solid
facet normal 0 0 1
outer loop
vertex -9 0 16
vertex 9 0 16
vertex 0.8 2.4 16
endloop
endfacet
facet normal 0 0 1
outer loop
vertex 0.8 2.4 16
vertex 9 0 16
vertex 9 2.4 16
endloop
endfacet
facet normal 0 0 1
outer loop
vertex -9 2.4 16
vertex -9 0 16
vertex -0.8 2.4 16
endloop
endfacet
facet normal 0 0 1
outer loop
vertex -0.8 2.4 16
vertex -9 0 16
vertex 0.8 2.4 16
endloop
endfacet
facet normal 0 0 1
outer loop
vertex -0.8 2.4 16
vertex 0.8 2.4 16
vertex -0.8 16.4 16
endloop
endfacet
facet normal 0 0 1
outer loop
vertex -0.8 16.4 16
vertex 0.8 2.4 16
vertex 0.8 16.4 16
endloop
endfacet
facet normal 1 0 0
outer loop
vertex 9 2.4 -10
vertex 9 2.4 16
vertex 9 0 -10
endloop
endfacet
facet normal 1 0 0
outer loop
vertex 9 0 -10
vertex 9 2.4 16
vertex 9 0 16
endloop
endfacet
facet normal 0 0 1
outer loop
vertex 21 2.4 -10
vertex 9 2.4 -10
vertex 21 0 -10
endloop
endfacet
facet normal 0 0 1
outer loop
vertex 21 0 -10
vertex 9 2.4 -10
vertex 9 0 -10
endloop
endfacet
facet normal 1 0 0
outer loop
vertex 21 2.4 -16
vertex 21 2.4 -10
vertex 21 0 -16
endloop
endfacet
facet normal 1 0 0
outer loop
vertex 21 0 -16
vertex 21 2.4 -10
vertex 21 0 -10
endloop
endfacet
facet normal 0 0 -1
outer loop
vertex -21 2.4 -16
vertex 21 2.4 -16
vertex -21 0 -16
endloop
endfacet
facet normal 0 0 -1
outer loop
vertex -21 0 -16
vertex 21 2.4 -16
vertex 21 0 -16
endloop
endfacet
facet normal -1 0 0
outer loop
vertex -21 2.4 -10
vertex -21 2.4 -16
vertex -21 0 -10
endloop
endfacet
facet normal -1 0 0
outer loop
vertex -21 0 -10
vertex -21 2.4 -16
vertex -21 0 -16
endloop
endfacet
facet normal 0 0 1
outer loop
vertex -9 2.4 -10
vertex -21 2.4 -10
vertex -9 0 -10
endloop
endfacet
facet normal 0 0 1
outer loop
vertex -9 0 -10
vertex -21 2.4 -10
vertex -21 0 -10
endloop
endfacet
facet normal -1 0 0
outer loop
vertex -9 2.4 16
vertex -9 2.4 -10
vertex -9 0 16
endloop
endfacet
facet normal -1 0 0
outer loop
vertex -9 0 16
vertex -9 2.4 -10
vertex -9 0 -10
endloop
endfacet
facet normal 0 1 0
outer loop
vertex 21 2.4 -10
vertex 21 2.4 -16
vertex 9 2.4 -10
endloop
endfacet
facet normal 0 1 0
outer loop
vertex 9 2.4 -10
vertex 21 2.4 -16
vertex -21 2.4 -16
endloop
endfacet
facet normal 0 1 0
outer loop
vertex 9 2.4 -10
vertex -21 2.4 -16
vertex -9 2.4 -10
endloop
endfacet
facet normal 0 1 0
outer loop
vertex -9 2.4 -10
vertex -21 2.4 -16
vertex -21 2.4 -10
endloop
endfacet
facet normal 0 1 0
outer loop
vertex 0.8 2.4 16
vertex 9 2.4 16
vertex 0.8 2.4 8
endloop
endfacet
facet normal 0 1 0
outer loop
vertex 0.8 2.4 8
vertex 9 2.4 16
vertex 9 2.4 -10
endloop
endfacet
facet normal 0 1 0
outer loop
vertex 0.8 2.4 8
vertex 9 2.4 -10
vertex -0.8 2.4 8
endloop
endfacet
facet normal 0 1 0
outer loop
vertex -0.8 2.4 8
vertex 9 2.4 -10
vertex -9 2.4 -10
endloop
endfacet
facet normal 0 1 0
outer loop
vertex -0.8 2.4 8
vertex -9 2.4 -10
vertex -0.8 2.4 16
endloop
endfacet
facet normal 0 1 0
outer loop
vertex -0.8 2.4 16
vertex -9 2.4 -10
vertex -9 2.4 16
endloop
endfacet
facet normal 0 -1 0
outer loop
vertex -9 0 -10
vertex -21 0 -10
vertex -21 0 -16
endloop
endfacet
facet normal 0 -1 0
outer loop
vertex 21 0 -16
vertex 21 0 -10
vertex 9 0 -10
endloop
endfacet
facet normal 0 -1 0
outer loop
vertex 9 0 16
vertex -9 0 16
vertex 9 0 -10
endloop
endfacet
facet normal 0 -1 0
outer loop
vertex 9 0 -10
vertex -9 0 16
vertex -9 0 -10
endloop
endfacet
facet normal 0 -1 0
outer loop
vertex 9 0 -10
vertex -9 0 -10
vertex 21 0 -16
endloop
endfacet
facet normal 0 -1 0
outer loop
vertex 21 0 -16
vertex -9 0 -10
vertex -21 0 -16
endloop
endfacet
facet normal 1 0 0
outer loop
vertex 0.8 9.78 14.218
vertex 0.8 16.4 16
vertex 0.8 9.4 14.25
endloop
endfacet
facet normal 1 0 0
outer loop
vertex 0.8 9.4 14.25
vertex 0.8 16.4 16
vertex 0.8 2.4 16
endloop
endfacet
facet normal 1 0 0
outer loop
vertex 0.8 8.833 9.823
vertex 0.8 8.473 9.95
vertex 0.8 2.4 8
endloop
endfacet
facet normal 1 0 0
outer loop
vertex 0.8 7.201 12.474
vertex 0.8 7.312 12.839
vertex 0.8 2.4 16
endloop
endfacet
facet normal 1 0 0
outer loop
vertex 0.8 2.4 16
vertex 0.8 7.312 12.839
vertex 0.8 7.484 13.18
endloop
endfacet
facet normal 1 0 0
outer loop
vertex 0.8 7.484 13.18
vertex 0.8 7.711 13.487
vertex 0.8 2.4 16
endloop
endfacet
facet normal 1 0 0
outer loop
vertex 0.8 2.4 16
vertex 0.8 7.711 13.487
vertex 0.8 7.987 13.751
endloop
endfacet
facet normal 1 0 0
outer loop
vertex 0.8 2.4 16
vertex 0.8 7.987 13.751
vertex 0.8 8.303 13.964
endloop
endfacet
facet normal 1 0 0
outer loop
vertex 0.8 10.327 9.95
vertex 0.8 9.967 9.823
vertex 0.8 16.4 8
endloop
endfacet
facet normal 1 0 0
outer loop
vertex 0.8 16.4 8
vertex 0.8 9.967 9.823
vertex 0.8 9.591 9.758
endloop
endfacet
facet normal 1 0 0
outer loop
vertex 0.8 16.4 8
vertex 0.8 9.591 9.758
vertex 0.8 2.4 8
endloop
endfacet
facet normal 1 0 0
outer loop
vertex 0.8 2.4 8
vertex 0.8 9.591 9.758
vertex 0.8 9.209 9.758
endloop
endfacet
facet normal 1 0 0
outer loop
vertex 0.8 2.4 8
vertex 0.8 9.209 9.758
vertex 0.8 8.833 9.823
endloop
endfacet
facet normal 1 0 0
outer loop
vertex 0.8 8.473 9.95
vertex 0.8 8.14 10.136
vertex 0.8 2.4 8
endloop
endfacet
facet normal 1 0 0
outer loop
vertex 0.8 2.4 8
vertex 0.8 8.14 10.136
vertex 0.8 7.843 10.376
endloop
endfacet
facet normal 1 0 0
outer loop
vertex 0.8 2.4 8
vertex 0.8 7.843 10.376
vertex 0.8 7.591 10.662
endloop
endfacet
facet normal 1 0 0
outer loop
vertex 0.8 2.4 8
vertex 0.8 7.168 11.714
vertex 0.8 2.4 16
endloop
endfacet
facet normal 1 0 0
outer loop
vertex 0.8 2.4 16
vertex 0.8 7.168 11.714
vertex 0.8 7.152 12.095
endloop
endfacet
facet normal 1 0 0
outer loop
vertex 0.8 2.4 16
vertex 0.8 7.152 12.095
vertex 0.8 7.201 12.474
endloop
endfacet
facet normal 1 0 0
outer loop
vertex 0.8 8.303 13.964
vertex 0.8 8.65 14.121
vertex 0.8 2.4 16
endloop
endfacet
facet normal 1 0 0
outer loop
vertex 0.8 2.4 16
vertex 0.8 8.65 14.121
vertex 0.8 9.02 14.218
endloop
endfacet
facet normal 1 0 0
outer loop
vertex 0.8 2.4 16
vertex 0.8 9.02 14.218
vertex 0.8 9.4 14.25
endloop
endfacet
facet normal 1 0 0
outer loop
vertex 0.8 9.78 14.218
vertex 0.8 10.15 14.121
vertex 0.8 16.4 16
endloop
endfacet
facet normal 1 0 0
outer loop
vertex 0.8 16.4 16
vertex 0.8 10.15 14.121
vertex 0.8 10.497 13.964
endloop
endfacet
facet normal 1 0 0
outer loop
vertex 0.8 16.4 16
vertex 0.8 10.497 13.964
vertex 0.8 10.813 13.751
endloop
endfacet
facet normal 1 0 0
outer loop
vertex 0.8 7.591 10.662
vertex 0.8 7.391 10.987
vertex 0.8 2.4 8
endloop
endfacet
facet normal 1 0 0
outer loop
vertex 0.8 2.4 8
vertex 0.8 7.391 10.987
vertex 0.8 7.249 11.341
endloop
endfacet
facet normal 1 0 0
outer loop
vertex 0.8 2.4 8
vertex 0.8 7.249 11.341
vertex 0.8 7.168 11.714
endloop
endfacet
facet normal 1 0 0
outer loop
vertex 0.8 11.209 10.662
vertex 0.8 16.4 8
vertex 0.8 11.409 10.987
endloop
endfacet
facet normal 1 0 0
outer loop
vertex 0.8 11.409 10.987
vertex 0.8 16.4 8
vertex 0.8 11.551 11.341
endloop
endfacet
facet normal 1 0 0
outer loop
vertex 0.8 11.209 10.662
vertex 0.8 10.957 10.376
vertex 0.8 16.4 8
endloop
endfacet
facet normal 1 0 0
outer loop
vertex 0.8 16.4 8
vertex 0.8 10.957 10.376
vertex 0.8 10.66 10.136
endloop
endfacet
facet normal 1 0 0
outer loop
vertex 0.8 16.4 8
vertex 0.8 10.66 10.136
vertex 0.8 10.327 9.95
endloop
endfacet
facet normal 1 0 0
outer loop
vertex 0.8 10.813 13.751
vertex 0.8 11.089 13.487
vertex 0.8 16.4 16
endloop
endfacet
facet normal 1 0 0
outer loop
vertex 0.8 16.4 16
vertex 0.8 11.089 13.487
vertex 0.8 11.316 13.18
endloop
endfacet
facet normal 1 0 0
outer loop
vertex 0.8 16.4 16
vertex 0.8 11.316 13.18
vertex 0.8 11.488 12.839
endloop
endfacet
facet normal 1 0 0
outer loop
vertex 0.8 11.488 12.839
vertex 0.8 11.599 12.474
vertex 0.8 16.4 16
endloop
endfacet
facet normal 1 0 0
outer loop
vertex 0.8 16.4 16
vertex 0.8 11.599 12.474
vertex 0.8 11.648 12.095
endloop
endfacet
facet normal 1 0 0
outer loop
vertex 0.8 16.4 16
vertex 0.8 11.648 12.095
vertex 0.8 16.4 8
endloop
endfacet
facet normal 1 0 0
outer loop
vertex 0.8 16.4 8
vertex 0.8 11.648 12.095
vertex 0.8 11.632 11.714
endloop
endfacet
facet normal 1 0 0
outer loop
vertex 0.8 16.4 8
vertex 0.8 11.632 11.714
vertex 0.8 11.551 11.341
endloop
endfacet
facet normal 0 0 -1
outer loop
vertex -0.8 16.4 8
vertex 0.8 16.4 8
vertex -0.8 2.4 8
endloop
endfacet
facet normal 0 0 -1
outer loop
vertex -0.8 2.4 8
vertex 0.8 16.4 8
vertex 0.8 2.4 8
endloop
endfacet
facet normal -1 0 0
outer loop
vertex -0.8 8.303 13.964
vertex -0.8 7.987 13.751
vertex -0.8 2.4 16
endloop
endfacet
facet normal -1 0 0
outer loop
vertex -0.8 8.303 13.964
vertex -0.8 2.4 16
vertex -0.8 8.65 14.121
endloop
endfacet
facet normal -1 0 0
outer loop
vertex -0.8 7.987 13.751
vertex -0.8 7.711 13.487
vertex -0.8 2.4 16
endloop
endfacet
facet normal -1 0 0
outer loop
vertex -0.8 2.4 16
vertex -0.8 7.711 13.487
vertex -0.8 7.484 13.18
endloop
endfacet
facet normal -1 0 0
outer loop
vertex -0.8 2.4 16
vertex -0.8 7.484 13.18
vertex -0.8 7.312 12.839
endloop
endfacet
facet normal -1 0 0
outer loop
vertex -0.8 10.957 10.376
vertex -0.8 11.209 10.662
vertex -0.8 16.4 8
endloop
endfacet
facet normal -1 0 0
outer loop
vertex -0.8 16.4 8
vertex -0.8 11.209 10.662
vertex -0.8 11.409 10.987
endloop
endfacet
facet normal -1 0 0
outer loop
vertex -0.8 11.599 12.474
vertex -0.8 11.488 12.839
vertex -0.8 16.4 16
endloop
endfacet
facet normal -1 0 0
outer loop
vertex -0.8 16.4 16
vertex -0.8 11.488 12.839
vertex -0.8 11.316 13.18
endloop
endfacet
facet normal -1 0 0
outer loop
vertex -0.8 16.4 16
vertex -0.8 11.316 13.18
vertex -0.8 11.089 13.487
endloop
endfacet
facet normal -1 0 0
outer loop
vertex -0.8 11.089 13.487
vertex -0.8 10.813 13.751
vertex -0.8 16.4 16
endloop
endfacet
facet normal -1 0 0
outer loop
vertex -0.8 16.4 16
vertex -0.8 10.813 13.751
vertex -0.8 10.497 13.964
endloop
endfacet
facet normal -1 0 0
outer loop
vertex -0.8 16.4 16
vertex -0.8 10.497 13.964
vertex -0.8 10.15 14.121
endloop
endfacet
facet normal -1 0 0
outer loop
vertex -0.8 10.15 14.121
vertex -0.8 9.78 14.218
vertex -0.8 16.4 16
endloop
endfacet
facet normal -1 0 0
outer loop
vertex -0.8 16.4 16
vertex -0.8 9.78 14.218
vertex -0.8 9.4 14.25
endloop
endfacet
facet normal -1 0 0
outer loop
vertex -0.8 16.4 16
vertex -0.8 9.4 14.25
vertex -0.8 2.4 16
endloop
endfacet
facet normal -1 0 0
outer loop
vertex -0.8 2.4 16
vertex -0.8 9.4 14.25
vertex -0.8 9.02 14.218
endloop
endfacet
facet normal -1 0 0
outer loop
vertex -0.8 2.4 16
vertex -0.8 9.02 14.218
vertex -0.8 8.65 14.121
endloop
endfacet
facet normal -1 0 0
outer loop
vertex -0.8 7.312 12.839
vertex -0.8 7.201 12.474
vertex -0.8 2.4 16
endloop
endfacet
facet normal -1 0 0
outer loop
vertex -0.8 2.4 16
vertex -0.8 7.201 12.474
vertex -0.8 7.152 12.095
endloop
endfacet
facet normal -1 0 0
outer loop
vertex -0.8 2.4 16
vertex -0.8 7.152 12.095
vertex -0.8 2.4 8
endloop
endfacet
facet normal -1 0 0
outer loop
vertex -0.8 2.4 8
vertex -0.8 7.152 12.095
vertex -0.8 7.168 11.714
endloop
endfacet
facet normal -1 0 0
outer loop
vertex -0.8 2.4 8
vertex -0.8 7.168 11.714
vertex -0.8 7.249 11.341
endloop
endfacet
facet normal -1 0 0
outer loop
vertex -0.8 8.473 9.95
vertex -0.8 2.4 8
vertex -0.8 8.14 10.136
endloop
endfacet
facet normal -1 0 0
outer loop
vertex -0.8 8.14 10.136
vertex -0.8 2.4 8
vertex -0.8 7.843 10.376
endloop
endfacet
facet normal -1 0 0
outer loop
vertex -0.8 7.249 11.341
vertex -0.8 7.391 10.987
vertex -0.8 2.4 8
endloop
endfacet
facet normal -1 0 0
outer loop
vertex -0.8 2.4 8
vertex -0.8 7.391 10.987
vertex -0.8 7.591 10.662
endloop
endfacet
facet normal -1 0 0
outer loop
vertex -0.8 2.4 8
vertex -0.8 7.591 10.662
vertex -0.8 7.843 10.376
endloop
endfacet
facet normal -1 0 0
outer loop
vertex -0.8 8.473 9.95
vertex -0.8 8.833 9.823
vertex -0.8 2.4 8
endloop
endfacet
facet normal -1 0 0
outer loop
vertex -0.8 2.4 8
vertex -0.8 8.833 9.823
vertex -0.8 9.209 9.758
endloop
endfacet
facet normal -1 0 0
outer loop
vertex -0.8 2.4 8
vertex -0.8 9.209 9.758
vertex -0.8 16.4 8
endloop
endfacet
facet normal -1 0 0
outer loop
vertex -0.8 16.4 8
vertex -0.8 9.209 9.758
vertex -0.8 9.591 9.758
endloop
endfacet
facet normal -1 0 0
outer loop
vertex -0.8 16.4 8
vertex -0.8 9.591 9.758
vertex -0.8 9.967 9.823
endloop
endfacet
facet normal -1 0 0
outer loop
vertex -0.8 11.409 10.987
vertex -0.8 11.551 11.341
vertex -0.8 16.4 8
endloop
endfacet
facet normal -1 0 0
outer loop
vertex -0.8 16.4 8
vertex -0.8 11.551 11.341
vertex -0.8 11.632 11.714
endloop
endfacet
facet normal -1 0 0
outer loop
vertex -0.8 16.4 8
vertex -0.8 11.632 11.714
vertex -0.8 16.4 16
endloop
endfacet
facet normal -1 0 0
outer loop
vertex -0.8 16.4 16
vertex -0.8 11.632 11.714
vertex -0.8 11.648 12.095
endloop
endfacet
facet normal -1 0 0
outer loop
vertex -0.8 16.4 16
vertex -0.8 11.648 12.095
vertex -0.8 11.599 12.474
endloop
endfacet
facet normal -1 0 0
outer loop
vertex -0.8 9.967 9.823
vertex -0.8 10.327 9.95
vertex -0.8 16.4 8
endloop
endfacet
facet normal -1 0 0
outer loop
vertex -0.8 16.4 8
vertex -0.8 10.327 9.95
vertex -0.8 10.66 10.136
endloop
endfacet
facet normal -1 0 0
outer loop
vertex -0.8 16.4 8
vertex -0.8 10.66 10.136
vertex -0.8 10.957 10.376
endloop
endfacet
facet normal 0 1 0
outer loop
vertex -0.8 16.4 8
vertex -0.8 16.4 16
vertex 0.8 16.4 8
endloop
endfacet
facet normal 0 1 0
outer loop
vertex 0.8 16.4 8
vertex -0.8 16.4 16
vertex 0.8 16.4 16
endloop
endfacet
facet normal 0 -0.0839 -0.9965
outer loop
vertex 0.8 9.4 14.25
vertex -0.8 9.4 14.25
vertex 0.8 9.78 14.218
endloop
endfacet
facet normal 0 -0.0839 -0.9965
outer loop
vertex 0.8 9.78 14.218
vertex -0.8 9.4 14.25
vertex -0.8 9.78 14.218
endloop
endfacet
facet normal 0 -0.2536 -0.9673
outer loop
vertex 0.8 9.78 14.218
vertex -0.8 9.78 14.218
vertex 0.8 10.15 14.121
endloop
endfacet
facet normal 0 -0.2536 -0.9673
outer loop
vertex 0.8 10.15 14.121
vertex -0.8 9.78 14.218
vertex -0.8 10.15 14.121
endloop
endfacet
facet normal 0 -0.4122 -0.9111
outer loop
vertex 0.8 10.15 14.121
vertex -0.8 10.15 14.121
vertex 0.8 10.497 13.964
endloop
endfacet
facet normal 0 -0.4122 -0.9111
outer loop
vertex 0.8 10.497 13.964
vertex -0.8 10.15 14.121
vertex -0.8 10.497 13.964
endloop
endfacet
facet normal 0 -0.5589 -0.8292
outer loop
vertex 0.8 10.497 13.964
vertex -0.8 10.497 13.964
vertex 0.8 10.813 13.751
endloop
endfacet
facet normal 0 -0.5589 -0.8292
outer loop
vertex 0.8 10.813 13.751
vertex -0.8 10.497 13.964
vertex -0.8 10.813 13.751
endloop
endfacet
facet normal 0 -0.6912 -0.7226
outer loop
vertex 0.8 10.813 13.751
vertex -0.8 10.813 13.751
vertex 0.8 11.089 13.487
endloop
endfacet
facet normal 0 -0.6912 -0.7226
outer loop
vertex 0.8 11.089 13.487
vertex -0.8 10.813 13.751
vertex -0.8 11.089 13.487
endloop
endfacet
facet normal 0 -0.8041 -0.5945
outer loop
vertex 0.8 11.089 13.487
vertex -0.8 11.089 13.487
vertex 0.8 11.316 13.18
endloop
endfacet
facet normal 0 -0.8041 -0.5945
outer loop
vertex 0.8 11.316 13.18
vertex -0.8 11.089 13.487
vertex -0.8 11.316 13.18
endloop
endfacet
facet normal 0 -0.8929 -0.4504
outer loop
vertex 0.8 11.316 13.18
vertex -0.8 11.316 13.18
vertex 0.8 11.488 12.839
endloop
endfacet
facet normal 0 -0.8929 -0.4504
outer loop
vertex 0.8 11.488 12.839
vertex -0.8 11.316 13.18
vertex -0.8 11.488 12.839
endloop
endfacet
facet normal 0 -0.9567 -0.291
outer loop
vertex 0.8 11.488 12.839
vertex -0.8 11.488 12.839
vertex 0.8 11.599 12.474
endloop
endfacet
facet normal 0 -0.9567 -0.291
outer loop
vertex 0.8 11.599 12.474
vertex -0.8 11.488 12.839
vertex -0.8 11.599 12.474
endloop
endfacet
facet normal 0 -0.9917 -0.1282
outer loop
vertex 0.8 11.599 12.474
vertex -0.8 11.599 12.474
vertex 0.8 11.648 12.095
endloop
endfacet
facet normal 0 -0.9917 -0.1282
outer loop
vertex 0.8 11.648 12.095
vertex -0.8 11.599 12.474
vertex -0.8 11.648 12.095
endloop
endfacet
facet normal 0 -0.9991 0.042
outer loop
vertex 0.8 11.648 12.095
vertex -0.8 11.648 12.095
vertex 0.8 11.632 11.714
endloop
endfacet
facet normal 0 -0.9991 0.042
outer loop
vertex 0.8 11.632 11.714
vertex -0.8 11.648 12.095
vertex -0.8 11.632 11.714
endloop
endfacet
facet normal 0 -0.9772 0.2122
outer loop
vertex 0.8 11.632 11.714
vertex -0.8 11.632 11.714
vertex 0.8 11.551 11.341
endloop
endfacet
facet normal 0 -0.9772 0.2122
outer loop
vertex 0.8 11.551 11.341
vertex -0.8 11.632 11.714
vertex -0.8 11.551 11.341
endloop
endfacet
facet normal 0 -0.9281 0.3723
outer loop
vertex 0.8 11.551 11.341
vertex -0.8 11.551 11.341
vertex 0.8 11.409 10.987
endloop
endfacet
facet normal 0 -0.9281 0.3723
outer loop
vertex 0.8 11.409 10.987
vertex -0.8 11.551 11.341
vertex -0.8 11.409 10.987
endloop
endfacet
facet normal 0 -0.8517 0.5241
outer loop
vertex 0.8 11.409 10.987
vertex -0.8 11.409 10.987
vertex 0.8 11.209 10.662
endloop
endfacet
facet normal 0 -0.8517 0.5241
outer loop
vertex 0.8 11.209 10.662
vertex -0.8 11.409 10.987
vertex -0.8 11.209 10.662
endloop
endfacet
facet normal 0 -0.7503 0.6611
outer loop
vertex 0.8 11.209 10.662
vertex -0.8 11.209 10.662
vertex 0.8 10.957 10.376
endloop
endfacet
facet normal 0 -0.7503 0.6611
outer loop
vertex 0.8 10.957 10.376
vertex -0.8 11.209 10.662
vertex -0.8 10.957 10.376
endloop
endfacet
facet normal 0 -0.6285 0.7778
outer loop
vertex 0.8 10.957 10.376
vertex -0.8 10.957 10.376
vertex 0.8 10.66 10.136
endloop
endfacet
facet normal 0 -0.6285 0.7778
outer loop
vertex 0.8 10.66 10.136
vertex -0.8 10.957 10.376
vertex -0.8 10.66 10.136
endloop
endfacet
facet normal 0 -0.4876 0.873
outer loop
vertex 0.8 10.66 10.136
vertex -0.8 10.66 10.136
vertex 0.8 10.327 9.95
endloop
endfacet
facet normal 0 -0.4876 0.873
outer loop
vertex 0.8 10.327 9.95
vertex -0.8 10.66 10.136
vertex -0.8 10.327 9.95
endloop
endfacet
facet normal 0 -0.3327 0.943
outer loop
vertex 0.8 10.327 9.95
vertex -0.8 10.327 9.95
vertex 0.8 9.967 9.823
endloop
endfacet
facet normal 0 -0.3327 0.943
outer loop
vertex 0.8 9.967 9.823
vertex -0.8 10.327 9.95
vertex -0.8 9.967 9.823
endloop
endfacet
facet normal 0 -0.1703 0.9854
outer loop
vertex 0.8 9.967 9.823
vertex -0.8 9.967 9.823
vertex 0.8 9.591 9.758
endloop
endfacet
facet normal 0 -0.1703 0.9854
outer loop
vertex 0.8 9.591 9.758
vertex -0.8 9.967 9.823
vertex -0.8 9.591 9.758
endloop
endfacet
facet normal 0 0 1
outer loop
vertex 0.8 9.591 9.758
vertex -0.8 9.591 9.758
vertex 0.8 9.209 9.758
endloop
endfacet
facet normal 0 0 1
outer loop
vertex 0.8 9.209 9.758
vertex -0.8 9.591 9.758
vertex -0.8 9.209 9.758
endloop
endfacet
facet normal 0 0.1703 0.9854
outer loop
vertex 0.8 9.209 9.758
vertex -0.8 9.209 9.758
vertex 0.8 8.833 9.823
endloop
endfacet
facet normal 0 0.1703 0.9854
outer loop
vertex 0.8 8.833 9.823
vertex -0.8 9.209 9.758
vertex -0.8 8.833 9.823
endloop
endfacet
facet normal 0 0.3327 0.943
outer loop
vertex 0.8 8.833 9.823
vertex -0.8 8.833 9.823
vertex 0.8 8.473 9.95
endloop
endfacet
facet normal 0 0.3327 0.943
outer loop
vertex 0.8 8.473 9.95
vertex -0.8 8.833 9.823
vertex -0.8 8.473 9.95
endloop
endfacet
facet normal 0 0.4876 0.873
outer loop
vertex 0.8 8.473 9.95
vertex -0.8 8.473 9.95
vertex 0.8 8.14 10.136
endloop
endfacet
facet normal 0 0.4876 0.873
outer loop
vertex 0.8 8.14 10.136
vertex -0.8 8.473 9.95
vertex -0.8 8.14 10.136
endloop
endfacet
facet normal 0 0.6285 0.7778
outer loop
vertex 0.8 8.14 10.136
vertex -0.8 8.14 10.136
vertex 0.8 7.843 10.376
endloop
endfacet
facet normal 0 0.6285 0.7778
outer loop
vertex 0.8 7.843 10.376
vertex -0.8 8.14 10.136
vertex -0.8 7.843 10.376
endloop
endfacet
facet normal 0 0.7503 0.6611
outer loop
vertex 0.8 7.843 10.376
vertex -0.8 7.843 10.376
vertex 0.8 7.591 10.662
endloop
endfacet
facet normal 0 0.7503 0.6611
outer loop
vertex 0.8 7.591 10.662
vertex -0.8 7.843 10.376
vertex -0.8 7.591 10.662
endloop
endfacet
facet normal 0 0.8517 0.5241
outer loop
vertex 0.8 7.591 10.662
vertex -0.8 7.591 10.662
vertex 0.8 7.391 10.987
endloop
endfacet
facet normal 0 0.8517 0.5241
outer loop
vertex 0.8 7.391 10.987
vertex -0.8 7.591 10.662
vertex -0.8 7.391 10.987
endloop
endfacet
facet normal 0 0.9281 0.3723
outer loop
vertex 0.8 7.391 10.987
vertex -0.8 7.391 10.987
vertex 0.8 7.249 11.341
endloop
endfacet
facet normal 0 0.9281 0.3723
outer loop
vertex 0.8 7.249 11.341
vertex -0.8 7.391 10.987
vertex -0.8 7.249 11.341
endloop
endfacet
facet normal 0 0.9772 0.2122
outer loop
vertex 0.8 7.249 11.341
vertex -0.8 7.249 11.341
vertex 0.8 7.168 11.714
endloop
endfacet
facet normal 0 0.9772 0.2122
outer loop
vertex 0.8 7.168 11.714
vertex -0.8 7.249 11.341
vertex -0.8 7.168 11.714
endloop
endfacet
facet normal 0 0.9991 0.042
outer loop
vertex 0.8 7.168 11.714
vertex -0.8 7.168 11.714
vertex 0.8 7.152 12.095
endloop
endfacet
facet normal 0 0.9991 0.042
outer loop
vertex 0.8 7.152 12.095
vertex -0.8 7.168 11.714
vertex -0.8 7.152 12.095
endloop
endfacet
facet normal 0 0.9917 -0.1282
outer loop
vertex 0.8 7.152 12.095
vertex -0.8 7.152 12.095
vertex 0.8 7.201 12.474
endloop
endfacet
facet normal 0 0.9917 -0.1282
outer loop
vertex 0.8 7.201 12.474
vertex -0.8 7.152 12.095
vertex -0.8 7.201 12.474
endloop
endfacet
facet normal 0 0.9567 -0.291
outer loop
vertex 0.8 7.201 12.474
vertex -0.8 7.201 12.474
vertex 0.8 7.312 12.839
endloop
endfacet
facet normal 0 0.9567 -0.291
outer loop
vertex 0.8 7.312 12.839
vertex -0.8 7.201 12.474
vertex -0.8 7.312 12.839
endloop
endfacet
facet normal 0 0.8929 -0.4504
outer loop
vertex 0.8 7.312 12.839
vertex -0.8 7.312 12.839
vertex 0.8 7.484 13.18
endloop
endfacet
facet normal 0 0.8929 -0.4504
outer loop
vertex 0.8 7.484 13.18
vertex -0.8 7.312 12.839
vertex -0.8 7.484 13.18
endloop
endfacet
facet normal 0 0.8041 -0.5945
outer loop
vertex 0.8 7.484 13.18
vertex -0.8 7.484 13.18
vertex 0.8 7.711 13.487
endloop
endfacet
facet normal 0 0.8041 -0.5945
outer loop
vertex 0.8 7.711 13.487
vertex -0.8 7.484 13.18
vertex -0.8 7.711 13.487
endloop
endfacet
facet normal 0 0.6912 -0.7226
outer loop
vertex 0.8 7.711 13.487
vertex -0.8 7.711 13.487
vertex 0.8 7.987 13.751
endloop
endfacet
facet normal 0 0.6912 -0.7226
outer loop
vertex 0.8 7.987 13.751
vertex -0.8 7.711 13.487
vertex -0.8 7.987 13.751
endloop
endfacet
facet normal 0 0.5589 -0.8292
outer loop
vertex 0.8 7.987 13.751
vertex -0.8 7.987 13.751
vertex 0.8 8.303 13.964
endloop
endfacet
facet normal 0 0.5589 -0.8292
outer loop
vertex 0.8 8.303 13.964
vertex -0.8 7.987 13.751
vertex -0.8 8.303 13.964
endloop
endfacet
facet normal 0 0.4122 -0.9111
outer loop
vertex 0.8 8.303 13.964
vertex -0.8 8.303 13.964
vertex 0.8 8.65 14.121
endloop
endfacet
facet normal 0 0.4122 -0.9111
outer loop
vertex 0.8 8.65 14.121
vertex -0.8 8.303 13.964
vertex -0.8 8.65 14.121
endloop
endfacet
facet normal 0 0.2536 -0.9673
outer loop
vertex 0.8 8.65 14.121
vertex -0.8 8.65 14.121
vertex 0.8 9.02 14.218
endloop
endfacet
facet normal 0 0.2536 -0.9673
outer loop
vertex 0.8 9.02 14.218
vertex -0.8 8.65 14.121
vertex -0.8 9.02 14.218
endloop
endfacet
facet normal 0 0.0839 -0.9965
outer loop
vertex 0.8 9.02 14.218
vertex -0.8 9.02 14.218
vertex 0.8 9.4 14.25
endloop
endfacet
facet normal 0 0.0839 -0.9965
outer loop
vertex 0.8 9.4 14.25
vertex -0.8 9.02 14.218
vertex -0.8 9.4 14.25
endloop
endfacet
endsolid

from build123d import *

# Parameters (mm, degrees)
SKETCH1_W           = 18
SKETCH1_H           = 32
SKETCH1_W_2         = 12
SKETCH1_H_2         = 6
BOSS_EXTRUDE1_DEPTH = 2.4
SKETCH4_W           = 1.6
SKETCH4_H           = 8
BOSS_EXTRUDE3_DEPTH = 14
CUT_EXTRUDE2_REACH  = 23.8
SKETCH5_R           = 2.25


with BuildPart() as part:
    # Sketch1 → Boss-Extrude1 (new body)
    with BuildSketch(Plane(origin=(0, 0, 0), x_dir=(1, 0, 0), z_dir=(0, 1, 0))):
        Rectangle(SKETCH1_W, SKETCH1_H)
        with Locations((-15, 13)):
            Rectangle(SKETCH1_W_2, SKETCH1_H_2)
        with Locations((15, 13)):
            Rectangle(SKETCH1_W_2, SKETCH1_H_2)
    extrude(amount=BOSS_EXTRUDE1_DEPTH)

    # Sketch4 → Boss-Extrude3 (add)
    with BuildSketch(Plane(origin=(0, 2.4, 0), x_dir=(1, 0, 0), z_dir=(0, 1, 0))):
        with Locations((0, -12)):
            Rectangle(SKETCH4_W, SKETCH4_H)
    extrude(amount=BOSS_EXTRUDE3_DEPTH)

    # Sketch5 → Cut-Extrude2 (cut, up to next)
    with BuildSketch(Plane.ZY.offset(0.8), mode=Mode.PRIVATE) as cut_extrude2_sk1:
        with Locations((12, 9.4)):
            Circle(SKETCH5_R)
    cut_extrude2_tool1 = extrude(cut_extrude2_sk1.sketch, amount=-CUT_EXTRUDE2_REACH, mode=Mode.PRIVATE) & part.part
    add(cut_extrude2_tool1.solids().sort_by_distance((-0.8, 9.4, 12))[0], mode=Mode.SUBTRACT)


solid = part.part
